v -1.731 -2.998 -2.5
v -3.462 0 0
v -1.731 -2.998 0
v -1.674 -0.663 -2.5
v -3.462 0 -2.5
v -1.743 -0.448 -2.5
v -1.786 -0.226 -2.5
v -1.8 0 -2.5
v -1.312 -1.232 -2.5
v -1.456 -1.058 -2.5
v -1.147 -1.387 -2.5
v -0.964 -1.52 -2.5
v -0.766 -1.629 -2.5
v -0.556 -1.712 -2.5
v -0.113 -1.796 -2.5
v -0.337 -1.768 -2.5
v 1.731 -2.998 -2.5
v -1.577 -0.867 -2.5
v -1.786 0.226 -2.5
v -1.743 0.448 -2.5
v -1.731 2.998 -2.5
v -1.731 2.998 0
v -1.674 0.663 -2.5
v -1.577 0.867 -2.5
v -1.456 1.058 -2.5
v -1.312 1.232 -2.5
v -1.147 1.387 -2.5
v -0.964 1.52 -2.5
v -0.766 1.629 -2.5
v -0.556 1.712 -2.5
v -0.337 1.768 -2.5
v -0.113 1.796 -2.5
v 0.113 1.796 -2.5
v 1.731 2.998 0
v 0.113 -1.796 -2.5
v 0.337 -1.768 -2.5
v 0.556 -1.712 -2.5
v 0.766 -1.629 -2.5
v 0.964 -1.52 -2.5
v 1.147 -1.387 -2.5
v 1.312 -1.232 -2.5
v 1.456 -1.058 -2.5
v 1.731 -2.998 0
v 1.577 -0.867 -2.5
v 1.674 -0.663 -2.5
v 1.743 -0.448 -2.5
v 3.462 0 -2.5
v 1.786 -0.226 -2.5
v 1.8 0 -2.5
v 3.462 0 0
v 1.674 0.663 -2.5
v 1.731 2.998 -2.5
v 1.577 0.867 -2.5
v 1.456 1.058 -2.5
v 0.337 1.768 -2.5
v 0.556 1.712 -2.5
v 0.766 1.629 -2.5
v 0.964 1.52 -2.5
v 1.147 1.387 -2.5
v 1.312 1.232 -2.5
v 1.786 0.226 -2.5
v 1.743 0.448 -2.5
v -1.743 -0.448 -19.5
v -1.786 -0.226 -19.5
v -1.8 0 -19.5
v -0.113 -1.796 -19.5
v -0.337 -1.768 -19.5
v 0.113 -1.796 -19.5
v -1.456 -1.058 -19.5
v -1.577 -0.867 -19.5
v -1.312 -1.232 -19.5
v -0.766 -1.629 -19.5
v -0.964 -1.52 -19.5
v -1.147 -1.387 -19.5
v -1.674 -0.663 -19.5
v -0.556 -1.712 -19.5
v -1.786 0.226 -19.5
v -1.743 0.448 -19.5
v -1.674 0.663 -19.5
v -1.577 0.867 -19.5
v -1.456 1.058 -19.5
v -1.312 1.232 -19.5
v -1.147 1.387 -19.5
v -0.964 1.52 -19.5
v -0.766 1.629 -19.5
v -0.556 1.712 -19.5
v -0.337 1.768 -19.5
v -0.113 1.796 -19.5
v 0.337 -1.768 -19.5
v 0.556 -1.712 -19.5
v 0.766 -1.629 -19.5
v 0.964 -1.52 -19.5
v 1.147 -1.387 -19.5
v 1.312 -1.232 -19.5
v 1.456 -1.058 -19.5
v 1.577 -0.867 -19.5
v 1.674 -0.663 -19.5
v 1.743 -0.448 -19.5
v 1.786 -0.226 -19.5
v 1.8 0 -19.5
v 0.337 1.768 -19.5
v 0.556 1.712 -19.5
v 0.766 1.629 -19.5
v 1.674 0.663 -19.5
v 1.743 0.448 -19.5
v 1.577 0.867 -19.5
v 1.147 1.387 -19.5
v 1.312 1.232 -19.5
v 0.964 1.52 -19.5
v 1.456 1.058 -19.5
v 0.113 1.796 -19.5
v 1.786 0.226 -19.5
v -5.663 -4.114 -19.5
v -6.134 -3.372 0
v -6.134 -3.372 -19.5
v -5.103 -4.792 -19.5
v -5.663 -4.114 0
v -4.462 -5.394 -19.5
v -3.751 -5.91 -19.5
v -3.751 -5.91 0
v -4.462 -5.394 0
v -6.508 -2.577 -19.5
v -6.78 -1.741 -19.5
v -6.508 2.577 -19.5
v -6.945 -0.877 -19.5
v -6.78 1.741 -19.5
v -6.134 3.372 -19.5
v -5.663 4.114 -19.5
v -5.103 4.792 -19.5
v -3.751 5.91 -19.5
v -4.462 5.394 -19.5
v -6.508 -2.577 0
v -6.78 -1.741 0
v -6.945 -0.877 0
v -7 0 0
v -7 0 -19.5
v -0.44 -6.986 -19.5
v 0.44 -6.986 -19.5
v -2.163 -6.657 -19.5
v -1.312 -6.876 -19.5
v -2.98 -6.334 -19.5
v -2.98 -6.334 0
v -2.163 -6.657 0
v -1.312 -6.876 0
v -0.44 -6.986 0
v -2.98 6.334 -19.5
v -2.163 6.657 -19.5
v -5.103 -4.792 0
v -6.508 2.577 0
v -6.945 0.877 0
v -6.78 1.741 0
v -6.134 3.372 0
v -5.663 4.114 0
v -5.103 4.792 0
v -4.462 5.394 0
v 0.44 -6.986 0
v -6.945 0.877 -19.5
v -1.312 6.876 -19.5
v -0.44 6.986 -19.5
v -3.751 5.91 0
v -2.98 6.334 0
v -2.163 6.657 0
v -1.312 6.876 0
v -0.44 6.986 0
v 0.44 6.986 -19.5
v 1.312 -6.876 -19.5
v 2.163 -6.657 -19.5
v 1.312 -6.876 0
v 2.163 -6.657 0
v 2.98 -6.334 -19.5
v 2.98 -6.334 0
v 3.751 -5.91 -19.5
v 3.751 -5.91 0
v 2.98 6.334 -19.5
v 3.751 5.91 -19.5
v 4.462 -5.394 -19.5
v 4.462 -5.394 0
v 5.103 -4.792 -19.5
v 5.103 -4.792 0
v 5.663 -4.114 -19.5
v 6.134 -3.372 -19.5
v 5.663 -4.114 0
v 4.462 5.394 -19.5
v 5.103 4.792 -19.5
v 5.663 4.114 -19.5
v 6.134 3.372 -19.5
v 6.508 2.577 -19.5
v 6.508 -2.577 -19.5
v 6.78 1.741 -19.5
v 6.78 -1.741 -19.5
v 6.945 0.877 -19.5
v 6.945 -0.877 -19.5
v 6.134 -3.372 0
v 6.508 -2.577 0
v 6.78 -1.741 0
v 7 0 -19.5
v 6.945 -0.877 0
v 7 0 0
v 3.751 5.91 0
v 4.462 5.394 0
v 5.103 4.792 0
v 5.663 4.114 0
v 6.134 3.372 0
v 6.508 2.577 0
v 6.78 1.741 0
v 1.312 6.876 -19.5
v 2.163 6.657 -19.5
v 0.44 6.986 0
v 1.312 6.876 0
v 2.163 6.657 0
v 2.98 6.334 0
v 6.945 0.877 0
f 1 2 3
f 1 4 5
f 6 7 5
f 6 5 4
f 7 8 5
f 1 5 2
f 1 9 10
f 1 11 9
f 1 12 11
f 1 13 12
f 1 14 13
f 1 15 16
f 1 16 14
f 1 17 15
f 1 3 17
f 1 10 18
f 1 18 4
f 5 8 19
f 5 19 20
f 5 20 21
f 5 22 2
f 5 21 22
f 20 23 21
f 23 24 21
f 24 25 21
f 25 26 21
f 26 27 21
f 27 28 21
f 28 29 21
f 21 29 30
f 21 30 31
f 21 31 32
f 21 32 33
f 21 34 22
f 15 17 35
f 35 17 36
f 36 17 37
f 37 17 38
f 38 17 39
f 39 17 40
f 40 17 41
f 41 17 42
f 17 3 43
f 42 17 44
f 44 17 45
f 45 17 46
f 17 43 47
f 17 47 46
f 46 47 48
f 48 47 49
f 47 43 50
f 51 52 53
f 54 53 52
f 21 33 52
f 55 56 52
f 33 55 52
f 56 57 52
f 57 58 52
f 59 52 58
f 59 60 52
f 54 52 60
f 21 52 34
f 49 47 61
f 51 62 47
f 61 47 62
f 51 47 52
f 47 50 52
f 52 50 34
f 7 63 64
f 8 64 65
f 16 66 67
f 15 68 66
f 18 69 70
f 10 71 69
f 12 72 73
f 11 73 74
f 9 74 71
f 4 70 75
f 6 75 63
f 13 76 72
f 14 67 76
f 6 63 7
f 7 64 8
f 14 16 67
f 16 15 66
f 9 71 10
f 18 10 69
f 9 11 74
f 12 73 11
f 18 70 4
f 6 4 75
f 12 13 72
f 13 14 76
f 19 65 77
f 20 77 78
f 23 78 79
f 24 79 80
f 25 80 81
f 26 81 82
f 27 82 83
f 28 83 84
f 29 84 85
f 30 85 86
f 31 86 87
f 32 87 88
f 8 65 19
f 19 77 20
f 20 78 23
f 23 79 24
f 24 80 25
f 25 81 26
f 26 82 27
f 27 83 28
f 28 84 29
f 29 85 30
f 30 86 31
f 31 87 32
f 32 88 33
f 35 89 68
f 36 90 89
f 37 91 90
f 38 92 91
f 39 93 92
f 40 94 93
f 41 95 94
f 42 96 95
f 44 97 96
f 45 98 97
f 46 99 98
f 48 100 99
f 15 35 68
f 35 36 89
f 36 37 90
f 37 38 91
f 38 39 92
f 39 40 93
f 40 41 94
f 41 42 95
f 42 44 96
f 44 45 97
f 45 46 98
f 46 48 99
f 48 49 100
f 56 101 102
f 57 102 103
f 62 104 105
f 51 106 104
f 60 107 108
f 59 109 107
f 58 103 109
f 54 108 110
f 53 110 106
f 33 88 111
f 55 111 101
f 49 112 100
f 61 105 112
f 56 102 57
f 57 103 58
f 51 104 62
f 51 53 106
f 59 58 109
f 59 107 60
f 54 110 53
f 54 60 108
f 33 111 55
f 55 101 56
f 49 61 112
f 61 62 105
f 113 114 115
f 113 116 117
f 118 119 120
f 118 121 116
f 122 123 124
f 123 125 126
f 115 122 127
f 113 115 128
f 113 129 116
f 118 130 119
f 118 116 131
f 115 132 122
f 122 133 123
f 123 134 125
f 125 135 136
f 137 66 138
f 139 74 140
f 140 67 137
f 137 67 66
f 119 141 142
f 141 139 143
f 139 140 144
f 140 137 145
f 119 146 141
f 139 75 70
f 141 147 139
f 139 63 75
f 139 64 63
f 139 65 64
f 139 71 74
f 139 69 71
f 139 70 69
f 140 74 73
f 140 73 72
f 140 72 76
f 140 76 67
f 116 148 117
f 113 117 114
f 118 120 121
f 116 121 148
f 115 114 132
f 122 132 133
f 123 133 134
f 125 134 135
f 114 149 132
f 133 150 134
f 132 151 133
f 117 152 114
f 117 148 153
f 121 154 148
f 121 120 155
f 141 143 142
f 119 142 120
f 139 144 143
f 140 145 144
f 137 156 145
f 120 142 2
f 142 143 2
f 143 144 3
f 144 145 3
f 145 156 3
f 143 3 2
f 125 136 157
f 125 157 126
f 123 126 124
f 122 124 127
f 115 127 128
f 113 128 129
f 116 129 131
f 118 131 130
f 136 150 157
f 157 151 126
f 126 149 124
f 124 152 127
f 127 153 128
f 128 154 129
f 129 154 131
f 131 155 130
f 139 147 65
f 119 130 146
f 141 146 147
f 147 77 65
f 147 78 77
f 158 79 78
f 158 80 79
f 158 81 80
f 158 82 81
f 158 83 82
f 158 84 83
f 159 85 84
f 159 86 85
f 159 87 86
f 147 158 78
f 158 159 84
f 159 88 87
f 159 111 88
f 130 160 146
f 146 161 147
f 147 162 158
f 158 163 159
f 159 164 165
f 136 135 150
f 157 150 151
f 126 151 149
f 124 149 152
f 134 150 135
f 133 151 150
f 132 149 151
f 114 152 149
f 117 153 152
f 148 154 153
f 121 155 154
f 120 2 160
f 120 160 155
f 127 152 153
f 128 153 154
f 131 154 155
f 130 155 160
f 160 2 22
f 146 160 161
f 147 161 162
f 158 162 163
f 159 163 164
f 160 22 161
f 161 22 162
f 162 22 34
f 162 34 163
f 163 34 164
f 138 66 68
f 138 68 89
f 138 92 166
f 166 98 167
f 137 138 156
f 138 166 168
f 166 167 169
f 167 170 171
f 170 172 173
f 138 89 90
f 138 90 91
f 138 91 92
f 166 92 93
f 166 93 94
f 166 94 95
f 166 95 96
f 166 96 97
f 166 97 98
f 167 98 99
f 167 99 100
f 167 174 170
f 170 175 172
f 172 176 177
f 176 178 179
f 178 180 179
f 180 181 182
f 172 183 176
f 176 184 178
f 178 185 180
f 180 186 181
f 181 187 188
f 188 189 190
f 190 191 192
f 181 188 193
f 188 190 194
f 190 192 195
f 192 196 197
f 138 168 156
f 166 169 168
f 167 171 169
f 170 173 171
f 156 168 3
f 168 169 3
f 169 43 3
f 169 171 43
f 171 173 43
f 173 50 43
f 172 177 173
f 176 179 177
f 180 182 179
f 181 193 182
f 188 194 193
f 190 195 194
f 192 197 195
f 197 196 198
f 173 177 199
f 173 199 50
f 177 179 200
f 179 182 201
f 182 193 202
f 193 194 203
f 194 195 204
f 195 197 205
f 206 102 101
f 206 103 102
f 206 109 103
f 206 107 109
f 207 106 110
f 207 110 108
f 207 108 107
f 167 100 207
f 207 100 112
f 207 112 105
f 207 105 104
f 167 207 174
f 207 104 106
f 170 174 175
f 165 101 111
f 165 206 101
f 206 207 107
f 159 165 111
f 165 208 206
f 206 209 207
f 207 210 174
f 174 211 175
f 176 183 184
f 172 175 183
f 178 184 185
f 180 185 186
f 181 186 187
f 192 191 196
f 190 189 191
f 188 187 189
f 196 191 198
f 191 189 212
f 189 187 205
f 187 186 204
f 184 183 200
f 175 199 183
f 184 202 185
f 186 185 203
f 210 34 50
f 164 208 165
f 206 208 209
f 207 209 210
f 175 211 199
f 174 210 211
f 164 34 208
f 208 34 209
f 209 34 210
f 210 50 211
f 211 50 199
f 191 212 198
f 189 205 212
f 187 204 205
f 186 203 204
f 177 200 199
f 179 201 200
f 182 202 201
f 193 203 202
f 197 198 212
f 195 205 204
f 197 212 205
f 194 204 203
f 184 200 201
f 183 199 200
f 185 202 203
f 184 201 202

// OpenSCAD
$fn = 50;

difference() {
	union() {
		translate(v = [0, 0, -19.5]) {
			cylinder(h = 19.5, r = 7.0);
		}
	}
	union() {
		translate(v = [0, 0, 0]) {
			rotate(a = [0, 0, 0]) {
				difference() {
					union() {
						translate(v = [0, 0, -2.5]) {
							linear_extrude(height = 2.5) {
								polygon(points = [[3.4619999999999997, 0.0], [1.7310000000000003, 2.9981799479017264], [-1.7309999999999992, 2.9981799479017264], [-3.4619999999999997, 4.2397272186481365e-16], [-1.7310000000000014, -2.998179947901726], [1.7309999999999977, -2.9981799479017277]]);
							}
						}
					}
					union();
				}
			}
		}
		#translate(v = [0, 0, -100.0]) {
			cylinder(h = 200, r = 1.8);
		}
	}
}
